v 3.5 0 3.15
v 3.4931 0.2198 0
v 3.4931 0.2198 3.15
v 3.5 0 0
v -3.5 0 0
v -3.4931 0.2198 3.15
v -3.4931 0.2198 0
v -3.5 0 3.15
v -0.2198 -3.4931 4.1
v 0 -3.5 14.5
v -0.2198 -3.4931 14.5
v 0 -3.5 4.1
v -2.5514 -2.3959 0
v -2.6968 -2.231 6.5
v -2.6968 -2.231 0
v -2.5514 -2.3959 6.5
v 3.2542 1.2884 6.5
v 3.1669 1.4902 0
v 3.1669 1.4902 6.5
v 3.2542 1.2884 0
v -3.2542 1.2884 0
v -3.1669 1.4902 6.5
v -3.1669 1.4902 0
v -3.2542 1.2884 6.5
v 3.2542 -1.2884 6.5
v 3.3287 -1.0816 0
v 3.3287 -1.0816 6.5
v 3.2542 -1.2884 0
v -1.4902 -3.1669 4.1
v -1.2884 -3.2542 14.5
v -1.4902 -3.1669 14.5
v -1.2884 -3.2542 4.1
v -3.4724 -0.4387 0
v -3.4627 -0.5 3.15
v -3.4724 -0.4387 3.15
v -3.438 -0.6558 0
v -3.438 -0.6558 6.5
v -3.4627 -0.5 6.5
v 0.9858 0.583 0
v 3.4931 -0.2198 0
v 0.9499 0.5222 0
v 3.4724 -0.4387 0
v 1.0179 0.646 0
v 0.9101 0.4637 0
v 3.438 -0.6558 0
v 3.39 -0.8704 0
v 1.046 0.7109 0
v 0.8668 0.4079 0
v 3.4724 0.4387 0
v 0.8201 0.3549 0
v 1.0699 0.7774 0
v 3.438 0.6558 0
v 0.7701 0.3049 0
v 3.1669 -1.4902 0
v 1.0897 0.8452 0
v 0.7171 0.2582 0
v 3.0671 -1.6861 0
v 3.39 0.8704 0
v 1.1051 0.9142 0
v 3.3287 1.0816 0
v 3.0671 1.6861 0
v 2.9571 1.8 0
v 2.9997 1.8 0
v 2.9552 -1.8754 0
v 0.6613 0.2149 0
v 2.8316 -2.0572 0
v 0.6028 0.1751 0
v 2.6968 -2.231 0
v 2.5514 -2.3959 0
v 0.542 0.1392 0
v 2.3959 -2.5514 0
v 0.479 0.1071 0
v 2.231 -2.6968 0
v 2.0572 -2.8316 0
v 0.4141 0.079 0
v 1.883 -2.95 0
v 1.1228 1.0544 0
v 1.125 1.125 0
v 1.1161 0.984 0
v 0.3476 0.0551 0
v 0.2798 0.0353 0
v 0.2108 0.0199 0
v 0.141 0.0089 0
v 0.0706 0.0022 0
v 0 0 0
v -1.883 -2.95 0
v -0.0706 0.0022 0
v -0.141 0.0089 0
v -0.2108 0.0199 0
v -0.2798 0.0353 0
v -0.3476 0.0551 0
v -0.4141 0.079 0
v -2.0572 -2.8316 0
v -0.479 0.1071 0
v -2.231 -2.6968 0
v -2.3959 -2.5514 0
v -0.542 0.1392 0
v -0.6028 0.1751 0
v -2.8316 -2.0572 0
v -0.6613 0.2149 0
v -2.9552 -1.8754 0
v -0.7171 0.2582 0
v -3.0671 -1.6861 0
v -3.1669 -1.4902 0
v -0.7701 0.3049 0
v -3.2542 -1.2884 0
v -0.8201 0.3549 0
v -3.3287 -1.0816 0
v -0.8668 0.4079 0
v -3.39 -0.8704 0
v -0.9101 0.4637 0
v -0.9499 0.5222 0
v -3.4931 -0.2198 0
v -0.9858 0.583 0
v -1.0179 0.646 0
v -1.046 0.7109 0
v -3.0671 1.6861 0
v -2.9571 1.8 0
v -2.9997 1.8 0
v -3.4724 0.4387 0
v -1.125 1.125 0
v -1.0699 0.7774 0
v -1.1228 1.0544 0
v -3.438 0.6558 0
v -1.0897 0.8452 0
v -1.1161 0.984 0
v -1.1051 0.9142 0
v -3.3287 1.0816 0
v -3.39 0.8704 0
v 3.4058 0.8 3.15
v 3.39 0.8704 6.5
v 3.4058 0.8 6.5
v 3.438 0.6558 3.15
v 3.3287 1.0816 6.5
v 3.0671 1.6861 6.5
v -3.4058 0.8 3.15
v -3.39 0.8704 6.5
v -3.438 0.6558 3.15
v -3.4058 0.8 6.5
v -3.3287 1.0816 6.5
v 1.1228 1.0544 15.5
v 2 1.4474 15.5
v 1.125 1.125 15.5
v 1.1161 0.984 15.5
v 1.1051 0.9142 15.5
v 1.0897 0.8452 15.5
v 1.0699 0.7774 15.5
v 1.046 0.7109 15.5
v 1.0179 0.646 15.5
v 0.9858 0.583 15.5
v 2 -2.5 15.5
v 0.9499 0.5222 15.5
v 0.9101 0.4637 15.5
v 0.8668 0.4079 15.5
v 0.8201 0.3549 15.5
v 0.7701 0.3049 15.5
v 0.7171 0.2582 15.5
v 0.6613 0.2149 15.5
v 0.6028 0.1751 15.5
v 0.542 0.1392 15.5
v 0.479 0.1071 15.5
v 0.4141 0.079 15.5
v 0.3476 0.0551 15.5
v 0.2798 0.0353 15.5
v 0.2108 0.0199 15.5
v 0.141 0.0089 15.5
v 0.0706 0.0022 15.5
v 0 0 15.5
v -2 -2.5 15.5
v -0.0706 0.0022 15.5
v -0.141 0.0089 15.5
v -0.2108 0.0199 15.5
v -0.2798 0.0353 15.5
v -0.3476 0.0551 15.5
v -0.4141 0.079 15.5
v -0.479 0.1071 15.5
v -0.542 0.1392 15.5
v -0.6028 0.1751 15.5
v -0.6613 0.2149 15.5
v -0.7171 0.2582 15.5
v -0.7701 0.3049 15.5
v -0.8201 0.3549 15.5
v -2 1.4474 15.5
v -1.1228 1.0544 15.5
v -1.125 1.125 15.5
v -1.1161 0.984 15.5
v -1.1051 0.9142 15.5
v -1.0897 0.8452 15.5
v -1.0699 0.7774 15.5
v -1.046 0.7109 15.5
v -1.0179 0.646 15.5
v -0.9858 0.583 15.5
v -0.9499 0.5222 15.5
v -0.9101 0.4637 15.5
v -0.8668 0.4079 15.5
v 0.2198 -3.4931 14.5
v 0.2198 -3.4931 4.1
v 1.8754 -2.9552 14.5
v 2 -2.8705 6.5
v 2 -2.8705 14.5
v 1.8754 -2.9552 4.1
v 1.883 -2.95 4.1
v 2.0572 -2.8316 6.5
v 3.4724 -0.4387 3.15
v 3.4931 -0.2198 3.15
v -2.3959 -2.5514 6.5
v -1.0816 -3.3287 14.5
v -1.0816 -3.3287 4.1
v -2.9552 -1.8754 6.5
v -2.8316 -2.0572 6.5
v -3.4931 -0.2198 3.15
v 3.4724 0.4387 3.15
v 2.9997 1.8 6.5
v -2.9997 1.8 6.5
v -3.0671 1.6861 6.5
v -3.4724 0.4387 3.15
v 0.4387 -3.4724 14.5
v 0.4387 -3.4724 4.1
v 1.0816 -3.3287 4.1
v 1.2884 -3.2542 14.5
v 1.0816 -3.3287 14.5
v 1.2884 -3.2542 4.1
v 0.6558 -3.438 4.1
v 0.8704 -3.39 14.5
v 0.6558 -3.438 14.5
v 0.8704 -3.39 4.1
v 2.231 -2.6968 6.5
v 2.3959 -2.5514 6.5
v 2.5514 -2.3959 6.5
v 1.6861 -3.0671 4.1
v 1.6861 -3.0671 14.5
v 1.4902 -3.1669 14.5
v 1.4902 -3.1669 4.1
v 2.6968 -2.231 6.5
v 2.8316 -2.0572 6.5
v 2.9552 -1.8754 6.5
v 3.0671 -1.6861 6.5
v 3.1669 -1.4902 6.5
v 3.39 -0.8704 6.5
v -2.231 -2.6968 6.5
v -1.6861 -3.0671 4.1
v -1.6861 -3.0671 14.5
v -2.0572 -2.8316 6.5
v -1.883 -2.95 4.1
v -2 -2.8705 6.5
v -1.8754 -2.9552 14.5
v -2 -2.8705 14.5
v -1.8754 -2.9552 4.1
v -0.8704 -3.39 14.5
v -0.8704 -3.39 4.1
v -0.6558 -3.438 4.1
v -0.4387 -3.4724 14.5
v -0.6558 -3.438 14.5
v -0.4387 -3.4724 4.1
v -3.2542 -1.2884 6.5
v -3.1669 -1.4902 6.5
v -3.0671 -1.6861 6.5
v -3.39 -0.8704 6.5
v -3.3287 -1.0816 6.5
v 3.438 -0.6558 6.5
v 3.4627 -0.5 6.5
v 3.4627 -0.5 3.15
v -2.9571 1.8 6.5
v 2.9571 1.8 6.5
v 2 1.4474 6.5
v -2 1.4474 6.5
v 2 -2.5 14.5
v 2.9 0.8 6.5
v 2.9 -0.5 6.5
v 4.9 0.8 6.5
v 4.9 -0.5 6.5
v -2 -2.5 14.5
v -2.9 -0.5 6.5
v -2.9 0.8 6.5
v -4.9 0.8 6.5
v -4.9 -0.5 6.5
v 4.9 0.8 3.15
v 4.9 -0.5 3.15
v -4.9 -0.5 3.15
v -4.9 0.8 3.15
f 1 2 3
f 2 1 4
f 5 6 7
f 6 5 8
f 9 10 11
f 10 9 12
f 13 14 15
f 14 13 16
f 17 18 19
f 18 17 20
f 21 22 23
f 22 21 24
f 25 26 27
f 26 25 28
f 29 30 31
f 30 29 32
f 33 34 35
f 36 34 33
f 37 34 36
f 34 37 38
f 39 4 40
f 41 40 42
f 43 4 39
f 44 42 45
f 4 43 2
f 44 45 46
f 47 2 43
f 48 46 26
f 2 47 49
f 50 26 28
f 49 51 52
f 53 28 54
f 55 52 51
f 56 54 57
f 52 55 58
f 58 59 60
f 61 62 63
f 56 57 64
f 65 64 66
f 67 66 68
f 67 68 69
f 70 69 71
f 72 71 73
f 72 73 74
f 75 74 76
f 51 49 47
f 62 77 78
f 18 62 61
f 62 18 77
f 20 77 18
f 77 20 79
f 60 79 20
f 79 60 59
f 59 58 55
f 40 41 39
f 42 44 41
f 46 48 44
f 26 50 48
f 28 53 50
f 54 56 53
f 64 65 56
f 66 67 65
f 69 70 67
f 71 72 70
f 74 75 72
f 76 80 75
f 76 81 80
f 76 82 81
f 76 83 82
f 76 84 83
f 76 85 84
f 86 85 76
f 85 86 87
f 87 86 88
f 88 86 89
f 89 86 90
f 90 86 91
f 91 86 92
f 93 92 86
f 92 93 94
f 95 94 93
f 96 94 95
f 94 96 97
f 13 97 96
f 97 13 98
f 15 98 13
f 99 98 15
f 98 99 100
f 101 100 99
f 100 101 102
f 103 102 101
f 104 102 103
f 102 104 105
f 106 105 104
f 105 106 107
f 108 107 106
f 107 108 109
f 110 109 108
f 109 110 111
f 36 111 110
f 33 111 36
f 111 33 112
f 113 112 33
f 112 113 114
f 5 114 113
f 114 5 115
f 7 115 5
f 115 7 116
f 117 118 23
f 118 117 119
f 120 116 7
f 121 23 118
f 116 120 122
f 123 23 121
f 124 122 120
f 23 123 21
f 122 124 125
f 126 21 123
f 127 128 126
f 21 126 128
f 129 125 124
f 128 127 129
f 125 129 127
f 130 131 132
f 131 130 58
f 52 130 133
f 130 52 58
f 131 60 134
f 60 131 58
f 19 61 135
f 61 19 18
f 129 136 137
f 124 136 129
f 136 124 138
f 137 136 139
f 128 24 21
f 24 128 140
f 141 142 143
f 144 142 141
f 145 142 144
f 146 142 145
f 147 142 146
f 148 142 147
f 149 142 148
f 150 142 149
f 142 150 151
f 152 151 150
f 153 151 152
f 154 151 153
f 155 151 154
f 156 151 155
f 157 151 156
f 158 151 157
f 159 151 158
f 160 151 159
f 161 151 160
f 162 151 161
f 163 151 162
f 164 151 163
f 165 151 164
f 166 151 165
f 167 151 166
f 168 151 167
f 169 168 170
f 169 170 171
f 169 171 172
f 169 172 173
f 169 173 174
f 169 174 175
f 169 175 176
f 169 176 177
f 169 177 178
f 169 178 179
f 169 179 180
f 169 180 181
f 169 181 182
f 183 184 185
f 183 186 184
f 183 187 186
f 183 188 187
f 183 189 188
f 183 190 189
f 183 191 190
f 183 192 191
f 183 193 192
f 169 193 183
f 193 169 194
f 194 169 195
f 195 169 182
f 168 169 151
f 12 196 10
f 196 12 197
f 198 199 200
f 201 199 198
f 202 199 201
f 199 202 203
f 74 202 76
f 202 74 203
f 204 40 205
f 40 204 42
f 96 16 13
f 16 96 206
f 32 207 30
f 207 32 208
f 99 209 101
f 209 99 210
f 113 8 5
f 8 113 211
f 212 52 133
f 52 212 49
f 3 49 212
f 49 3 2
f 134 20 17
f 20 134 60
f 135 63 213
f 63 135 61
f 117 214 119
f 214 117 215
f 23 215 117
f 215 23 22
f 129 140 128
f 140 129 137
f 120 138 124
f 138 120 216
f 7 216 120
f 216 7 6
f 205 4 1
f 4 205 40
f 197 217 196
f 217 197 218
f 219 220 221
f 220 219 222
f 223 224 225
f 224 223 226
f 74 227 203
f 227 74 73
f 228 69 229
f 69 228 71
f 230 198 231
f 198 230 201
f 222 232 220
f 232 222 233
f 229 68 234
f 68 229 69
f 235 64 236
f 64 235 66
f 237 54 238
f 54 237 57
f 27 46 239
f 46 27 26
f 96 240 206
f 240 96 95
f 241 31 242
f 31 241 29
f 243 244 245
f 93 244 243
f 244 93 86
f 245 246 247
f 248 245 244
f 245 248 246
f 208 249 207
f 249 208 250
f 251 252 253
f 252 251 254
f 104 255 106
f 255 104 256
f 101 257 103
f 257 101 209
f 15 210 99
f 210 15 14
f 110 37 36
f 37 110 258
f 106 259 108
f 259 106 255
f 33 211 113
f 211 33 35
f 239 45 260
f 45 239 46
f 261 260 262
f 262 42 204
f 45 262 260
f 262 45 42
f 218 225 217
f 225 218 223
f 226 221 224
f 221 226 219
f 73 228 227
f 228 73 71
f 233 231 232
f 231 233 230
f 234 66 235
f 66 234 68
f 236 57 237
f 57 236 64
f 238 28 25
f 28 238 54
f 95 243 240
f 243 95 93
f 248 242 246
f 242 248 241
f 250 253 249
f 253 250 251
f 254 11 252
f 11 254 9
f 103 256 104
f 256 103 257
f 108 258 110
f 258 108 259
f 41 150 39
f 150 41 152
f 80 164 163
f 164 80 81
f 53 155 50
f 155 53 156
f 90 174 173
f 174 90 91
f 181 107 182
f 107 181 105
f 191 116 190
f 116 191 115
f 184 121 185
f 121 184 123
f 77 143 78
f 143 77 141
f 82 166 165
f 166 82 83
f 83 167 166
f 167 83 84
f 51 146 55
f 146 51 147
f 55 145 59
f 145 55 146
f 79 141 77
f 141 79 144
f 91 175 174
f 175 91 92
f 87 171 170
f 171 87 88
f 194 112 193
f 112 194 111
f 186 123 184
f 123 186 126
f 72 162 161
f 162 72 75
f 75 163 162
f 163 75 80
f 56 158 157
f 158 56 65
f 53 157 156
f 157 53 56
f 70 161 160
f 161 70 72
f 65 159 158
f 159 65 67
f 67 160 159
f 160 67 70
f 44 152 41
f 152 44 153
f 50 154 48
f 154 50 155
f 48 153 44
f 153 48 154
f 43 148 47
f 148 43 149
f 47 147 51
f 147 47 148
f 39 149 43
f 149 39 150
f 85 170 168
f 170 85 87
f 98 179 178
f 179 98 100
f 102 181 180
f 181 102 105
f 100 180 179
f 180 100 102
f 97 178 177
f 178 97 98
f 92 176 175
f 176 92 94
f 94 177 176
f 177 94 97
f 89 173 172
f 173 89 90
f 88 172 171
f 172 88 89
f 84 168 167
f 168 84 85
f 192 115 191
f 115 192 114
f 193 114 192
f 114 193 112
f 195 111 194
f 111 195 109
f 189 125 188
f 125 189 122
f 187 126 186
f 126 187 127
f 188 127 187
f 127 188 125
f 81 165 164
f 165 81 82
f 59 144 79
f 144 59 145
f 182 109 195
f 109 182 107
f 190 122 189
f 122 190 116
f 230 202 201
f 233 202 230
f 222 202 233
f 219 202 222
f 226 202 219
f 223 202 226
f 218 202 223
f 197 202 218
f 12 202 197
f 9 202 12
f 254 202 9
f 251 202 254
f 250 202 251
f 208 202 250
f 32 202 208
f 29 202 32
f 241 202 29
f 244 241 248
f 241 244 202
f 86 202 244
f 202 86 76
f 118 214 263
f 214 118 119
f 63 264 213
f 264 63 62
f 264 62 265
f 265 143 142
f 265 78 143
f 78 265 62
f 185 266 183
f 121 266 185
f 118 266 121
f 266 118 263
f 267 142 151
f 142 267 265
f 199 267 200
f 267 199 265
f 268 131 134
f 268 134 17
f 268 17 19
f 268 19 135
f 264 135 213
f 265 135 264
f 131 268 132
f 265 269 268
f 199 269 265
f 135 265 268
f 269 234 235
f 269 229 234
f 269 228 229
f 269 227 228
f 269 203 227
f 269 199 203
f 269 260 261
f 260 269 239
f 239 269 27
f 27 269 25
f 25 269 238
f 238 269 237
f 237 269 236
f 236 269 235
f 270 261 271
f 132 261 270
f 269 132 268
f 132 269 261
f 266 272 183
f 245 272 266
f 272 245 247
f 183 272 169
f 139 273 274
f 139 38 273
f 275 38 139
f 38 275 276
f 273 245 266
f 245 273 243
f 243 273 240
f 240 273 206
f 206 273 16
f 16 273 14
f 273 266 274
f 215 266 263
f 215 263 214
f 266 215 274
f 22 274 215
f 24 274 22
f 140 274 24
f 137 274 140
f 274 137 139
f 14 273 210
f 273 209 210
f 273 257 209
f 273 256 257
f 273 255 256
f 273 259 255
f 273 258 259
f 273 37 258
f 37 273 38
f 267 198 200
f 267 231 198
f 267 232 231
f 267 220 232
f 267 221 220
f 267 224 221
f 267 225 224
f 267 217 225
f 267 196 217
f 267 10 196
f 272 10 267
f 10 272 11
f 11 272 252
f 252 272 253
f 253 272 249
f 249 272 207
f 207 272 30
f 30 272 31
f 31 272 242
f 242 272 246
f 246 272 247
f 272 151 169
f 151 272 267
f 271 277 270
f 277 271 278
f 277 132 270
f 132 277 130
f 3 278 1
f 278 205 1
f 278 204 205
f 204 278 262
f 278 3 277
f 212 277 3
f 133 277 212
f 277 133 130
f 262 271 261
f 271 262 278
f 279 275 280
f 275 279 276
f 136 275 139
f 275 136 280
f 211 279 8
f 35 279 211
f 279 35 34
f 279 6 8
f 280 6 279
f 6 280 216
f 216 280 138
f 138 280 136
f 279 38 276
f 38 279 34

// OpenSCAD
$fn=100;

base_length = 6.5;
total_width = 9.8;
tab_length = 3.35;
tab_thickness = 1.3;
outer_diameter = 7;
inner_diameter = 2.25;
extension_length = 9;

difference() {
    cylinder(h=base_length+extension_length, d1=outer_diameter, d2=outer_diameter, center=false);
    translate([0, 2.25/2, -0.1])
        cylinder(h=base_length+extension_length+0.2, d1=inner_diameter, d2=inner_diameter, center=false);
    translate([-5, -1-4.8+(3.5/2), -0.1])
        cube([10, 1.1, 4.2], center=false);
    translate([-5, +5.3-3.5, -0.1])
        cube([10, 10, base_length+extension_length+0.2], center=false);
    hull() {
        translate([-inner_diameter/2, inner_diameter/2, -0.1])
            cube([inner_diameter, 3, base_length+extension_length+0.2], center=false);
        translate([-7/2, 2, -0.1])
            cube([7, 2, base_length+extension_length+0.2], center=false);
    }
    translate([2, -5, base_length])
        cube([2, 10, extension_length+0.1]);
    translate([-4, -5, base_length])
        cube([2, 10, extension_length+0.1]);
    translate([-5, -10-(outer_diameter/2)+1, base_length+extension_length-1])
        cube([10, 10, 10]);
}
translate([(total_width/2)-2, (-outer_diameter/2)+3, base_length-tab_length])
    cube([2, tab_thickness, tab_length], center=false);
translate([-(total_width/2), (-outer_diameter/2)+3, base_length-tab_length])
    cube([2, tab_thickness, tab_length], center=false);

/*
difference() {
    translate([0, 0, base_length-0.1])
        cylinder(h=extension_length+0.1, d1=outer_diameter, d2=outer_diameter, center=false);
    translate([0, 2.25/2, base_length-0.2])
        cylinder(h=extension_length+0.5, d1=inner_diameter, d2=inner_diameter, center=false);
    #translate([0, 0, base_length])
        cube([10, 10, 10], center=false);
}
*/
